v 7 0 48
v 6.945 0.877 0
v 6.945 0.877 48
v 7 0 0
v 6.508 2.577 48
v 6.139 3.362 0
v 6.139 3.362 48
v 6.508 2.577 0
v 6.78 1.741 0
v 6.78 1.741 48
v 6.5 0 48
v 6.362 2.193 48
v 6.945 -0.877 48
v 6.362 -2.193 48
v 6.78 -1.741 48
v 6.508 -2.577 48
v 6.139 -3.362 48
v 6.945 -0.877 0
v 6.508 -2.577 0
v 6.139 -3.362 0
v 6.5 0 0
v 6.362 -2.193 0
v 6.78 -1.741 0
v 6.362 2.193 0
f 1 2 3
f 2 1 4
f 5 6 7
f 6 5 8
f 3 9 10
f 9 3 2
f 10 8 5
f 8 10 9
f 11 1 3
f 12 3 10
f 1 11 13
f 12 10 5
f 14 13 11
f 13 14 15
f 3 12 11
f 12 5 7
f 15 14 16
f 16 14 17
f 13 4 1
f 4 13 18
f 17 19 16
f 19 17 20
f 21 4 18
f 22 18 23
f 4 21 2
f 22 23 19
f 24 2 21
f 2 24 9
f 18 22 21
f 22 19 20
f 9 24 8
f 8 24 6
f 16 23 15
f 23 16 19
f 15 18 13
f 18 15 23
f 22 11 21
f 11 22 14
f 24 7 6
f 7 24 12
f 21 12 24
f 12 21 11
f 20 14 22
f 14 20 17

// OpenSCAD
$fn = 50;


difference() {
	union() {
		cylinder(h = 48, r = 7.0000000000);
		translate(v = [-14.0000000000, 0, 0]) {
			cylinder(h = 48, r = 7.0000000000);
		}
	}
	union() {
		cylinder(h = 48, r = 3.2500000000);
		cylinder(h = 48, r = 1.8000000000);
		cylinder(h = 48, r = 1.8000000000);
		cylinder(h = 48, r = 1.8000000000);
		translate(v = [-18.5000000000, 0, 0]) {
			hull() {
				translate(v = [-3.7500000000, 0.0000000000, 0]) {
					cylinder(h = 48, r = 7.5000000000);
				}
				translate(v = [3.7500000000, 0.0000000000, 0]) {
					cylinder(h = 48, r = 7.5000000000);
				}
				translate(v = [-3.7500000000, -0.0000000000, 0]) {
					cylinder(h = 48, r = 7.5000000000);
				}
				translate(v = [3.7500000000, -0.0000000000, 0]) {
					cylinder(h = 48, r = 7.5000000000);
				}
			}
		}
		translate(v = [-11.0000000000, 0, 0.0000000000]) {
			cylinder(h = 48, r = 17.5000000000);
		}
	}
}
